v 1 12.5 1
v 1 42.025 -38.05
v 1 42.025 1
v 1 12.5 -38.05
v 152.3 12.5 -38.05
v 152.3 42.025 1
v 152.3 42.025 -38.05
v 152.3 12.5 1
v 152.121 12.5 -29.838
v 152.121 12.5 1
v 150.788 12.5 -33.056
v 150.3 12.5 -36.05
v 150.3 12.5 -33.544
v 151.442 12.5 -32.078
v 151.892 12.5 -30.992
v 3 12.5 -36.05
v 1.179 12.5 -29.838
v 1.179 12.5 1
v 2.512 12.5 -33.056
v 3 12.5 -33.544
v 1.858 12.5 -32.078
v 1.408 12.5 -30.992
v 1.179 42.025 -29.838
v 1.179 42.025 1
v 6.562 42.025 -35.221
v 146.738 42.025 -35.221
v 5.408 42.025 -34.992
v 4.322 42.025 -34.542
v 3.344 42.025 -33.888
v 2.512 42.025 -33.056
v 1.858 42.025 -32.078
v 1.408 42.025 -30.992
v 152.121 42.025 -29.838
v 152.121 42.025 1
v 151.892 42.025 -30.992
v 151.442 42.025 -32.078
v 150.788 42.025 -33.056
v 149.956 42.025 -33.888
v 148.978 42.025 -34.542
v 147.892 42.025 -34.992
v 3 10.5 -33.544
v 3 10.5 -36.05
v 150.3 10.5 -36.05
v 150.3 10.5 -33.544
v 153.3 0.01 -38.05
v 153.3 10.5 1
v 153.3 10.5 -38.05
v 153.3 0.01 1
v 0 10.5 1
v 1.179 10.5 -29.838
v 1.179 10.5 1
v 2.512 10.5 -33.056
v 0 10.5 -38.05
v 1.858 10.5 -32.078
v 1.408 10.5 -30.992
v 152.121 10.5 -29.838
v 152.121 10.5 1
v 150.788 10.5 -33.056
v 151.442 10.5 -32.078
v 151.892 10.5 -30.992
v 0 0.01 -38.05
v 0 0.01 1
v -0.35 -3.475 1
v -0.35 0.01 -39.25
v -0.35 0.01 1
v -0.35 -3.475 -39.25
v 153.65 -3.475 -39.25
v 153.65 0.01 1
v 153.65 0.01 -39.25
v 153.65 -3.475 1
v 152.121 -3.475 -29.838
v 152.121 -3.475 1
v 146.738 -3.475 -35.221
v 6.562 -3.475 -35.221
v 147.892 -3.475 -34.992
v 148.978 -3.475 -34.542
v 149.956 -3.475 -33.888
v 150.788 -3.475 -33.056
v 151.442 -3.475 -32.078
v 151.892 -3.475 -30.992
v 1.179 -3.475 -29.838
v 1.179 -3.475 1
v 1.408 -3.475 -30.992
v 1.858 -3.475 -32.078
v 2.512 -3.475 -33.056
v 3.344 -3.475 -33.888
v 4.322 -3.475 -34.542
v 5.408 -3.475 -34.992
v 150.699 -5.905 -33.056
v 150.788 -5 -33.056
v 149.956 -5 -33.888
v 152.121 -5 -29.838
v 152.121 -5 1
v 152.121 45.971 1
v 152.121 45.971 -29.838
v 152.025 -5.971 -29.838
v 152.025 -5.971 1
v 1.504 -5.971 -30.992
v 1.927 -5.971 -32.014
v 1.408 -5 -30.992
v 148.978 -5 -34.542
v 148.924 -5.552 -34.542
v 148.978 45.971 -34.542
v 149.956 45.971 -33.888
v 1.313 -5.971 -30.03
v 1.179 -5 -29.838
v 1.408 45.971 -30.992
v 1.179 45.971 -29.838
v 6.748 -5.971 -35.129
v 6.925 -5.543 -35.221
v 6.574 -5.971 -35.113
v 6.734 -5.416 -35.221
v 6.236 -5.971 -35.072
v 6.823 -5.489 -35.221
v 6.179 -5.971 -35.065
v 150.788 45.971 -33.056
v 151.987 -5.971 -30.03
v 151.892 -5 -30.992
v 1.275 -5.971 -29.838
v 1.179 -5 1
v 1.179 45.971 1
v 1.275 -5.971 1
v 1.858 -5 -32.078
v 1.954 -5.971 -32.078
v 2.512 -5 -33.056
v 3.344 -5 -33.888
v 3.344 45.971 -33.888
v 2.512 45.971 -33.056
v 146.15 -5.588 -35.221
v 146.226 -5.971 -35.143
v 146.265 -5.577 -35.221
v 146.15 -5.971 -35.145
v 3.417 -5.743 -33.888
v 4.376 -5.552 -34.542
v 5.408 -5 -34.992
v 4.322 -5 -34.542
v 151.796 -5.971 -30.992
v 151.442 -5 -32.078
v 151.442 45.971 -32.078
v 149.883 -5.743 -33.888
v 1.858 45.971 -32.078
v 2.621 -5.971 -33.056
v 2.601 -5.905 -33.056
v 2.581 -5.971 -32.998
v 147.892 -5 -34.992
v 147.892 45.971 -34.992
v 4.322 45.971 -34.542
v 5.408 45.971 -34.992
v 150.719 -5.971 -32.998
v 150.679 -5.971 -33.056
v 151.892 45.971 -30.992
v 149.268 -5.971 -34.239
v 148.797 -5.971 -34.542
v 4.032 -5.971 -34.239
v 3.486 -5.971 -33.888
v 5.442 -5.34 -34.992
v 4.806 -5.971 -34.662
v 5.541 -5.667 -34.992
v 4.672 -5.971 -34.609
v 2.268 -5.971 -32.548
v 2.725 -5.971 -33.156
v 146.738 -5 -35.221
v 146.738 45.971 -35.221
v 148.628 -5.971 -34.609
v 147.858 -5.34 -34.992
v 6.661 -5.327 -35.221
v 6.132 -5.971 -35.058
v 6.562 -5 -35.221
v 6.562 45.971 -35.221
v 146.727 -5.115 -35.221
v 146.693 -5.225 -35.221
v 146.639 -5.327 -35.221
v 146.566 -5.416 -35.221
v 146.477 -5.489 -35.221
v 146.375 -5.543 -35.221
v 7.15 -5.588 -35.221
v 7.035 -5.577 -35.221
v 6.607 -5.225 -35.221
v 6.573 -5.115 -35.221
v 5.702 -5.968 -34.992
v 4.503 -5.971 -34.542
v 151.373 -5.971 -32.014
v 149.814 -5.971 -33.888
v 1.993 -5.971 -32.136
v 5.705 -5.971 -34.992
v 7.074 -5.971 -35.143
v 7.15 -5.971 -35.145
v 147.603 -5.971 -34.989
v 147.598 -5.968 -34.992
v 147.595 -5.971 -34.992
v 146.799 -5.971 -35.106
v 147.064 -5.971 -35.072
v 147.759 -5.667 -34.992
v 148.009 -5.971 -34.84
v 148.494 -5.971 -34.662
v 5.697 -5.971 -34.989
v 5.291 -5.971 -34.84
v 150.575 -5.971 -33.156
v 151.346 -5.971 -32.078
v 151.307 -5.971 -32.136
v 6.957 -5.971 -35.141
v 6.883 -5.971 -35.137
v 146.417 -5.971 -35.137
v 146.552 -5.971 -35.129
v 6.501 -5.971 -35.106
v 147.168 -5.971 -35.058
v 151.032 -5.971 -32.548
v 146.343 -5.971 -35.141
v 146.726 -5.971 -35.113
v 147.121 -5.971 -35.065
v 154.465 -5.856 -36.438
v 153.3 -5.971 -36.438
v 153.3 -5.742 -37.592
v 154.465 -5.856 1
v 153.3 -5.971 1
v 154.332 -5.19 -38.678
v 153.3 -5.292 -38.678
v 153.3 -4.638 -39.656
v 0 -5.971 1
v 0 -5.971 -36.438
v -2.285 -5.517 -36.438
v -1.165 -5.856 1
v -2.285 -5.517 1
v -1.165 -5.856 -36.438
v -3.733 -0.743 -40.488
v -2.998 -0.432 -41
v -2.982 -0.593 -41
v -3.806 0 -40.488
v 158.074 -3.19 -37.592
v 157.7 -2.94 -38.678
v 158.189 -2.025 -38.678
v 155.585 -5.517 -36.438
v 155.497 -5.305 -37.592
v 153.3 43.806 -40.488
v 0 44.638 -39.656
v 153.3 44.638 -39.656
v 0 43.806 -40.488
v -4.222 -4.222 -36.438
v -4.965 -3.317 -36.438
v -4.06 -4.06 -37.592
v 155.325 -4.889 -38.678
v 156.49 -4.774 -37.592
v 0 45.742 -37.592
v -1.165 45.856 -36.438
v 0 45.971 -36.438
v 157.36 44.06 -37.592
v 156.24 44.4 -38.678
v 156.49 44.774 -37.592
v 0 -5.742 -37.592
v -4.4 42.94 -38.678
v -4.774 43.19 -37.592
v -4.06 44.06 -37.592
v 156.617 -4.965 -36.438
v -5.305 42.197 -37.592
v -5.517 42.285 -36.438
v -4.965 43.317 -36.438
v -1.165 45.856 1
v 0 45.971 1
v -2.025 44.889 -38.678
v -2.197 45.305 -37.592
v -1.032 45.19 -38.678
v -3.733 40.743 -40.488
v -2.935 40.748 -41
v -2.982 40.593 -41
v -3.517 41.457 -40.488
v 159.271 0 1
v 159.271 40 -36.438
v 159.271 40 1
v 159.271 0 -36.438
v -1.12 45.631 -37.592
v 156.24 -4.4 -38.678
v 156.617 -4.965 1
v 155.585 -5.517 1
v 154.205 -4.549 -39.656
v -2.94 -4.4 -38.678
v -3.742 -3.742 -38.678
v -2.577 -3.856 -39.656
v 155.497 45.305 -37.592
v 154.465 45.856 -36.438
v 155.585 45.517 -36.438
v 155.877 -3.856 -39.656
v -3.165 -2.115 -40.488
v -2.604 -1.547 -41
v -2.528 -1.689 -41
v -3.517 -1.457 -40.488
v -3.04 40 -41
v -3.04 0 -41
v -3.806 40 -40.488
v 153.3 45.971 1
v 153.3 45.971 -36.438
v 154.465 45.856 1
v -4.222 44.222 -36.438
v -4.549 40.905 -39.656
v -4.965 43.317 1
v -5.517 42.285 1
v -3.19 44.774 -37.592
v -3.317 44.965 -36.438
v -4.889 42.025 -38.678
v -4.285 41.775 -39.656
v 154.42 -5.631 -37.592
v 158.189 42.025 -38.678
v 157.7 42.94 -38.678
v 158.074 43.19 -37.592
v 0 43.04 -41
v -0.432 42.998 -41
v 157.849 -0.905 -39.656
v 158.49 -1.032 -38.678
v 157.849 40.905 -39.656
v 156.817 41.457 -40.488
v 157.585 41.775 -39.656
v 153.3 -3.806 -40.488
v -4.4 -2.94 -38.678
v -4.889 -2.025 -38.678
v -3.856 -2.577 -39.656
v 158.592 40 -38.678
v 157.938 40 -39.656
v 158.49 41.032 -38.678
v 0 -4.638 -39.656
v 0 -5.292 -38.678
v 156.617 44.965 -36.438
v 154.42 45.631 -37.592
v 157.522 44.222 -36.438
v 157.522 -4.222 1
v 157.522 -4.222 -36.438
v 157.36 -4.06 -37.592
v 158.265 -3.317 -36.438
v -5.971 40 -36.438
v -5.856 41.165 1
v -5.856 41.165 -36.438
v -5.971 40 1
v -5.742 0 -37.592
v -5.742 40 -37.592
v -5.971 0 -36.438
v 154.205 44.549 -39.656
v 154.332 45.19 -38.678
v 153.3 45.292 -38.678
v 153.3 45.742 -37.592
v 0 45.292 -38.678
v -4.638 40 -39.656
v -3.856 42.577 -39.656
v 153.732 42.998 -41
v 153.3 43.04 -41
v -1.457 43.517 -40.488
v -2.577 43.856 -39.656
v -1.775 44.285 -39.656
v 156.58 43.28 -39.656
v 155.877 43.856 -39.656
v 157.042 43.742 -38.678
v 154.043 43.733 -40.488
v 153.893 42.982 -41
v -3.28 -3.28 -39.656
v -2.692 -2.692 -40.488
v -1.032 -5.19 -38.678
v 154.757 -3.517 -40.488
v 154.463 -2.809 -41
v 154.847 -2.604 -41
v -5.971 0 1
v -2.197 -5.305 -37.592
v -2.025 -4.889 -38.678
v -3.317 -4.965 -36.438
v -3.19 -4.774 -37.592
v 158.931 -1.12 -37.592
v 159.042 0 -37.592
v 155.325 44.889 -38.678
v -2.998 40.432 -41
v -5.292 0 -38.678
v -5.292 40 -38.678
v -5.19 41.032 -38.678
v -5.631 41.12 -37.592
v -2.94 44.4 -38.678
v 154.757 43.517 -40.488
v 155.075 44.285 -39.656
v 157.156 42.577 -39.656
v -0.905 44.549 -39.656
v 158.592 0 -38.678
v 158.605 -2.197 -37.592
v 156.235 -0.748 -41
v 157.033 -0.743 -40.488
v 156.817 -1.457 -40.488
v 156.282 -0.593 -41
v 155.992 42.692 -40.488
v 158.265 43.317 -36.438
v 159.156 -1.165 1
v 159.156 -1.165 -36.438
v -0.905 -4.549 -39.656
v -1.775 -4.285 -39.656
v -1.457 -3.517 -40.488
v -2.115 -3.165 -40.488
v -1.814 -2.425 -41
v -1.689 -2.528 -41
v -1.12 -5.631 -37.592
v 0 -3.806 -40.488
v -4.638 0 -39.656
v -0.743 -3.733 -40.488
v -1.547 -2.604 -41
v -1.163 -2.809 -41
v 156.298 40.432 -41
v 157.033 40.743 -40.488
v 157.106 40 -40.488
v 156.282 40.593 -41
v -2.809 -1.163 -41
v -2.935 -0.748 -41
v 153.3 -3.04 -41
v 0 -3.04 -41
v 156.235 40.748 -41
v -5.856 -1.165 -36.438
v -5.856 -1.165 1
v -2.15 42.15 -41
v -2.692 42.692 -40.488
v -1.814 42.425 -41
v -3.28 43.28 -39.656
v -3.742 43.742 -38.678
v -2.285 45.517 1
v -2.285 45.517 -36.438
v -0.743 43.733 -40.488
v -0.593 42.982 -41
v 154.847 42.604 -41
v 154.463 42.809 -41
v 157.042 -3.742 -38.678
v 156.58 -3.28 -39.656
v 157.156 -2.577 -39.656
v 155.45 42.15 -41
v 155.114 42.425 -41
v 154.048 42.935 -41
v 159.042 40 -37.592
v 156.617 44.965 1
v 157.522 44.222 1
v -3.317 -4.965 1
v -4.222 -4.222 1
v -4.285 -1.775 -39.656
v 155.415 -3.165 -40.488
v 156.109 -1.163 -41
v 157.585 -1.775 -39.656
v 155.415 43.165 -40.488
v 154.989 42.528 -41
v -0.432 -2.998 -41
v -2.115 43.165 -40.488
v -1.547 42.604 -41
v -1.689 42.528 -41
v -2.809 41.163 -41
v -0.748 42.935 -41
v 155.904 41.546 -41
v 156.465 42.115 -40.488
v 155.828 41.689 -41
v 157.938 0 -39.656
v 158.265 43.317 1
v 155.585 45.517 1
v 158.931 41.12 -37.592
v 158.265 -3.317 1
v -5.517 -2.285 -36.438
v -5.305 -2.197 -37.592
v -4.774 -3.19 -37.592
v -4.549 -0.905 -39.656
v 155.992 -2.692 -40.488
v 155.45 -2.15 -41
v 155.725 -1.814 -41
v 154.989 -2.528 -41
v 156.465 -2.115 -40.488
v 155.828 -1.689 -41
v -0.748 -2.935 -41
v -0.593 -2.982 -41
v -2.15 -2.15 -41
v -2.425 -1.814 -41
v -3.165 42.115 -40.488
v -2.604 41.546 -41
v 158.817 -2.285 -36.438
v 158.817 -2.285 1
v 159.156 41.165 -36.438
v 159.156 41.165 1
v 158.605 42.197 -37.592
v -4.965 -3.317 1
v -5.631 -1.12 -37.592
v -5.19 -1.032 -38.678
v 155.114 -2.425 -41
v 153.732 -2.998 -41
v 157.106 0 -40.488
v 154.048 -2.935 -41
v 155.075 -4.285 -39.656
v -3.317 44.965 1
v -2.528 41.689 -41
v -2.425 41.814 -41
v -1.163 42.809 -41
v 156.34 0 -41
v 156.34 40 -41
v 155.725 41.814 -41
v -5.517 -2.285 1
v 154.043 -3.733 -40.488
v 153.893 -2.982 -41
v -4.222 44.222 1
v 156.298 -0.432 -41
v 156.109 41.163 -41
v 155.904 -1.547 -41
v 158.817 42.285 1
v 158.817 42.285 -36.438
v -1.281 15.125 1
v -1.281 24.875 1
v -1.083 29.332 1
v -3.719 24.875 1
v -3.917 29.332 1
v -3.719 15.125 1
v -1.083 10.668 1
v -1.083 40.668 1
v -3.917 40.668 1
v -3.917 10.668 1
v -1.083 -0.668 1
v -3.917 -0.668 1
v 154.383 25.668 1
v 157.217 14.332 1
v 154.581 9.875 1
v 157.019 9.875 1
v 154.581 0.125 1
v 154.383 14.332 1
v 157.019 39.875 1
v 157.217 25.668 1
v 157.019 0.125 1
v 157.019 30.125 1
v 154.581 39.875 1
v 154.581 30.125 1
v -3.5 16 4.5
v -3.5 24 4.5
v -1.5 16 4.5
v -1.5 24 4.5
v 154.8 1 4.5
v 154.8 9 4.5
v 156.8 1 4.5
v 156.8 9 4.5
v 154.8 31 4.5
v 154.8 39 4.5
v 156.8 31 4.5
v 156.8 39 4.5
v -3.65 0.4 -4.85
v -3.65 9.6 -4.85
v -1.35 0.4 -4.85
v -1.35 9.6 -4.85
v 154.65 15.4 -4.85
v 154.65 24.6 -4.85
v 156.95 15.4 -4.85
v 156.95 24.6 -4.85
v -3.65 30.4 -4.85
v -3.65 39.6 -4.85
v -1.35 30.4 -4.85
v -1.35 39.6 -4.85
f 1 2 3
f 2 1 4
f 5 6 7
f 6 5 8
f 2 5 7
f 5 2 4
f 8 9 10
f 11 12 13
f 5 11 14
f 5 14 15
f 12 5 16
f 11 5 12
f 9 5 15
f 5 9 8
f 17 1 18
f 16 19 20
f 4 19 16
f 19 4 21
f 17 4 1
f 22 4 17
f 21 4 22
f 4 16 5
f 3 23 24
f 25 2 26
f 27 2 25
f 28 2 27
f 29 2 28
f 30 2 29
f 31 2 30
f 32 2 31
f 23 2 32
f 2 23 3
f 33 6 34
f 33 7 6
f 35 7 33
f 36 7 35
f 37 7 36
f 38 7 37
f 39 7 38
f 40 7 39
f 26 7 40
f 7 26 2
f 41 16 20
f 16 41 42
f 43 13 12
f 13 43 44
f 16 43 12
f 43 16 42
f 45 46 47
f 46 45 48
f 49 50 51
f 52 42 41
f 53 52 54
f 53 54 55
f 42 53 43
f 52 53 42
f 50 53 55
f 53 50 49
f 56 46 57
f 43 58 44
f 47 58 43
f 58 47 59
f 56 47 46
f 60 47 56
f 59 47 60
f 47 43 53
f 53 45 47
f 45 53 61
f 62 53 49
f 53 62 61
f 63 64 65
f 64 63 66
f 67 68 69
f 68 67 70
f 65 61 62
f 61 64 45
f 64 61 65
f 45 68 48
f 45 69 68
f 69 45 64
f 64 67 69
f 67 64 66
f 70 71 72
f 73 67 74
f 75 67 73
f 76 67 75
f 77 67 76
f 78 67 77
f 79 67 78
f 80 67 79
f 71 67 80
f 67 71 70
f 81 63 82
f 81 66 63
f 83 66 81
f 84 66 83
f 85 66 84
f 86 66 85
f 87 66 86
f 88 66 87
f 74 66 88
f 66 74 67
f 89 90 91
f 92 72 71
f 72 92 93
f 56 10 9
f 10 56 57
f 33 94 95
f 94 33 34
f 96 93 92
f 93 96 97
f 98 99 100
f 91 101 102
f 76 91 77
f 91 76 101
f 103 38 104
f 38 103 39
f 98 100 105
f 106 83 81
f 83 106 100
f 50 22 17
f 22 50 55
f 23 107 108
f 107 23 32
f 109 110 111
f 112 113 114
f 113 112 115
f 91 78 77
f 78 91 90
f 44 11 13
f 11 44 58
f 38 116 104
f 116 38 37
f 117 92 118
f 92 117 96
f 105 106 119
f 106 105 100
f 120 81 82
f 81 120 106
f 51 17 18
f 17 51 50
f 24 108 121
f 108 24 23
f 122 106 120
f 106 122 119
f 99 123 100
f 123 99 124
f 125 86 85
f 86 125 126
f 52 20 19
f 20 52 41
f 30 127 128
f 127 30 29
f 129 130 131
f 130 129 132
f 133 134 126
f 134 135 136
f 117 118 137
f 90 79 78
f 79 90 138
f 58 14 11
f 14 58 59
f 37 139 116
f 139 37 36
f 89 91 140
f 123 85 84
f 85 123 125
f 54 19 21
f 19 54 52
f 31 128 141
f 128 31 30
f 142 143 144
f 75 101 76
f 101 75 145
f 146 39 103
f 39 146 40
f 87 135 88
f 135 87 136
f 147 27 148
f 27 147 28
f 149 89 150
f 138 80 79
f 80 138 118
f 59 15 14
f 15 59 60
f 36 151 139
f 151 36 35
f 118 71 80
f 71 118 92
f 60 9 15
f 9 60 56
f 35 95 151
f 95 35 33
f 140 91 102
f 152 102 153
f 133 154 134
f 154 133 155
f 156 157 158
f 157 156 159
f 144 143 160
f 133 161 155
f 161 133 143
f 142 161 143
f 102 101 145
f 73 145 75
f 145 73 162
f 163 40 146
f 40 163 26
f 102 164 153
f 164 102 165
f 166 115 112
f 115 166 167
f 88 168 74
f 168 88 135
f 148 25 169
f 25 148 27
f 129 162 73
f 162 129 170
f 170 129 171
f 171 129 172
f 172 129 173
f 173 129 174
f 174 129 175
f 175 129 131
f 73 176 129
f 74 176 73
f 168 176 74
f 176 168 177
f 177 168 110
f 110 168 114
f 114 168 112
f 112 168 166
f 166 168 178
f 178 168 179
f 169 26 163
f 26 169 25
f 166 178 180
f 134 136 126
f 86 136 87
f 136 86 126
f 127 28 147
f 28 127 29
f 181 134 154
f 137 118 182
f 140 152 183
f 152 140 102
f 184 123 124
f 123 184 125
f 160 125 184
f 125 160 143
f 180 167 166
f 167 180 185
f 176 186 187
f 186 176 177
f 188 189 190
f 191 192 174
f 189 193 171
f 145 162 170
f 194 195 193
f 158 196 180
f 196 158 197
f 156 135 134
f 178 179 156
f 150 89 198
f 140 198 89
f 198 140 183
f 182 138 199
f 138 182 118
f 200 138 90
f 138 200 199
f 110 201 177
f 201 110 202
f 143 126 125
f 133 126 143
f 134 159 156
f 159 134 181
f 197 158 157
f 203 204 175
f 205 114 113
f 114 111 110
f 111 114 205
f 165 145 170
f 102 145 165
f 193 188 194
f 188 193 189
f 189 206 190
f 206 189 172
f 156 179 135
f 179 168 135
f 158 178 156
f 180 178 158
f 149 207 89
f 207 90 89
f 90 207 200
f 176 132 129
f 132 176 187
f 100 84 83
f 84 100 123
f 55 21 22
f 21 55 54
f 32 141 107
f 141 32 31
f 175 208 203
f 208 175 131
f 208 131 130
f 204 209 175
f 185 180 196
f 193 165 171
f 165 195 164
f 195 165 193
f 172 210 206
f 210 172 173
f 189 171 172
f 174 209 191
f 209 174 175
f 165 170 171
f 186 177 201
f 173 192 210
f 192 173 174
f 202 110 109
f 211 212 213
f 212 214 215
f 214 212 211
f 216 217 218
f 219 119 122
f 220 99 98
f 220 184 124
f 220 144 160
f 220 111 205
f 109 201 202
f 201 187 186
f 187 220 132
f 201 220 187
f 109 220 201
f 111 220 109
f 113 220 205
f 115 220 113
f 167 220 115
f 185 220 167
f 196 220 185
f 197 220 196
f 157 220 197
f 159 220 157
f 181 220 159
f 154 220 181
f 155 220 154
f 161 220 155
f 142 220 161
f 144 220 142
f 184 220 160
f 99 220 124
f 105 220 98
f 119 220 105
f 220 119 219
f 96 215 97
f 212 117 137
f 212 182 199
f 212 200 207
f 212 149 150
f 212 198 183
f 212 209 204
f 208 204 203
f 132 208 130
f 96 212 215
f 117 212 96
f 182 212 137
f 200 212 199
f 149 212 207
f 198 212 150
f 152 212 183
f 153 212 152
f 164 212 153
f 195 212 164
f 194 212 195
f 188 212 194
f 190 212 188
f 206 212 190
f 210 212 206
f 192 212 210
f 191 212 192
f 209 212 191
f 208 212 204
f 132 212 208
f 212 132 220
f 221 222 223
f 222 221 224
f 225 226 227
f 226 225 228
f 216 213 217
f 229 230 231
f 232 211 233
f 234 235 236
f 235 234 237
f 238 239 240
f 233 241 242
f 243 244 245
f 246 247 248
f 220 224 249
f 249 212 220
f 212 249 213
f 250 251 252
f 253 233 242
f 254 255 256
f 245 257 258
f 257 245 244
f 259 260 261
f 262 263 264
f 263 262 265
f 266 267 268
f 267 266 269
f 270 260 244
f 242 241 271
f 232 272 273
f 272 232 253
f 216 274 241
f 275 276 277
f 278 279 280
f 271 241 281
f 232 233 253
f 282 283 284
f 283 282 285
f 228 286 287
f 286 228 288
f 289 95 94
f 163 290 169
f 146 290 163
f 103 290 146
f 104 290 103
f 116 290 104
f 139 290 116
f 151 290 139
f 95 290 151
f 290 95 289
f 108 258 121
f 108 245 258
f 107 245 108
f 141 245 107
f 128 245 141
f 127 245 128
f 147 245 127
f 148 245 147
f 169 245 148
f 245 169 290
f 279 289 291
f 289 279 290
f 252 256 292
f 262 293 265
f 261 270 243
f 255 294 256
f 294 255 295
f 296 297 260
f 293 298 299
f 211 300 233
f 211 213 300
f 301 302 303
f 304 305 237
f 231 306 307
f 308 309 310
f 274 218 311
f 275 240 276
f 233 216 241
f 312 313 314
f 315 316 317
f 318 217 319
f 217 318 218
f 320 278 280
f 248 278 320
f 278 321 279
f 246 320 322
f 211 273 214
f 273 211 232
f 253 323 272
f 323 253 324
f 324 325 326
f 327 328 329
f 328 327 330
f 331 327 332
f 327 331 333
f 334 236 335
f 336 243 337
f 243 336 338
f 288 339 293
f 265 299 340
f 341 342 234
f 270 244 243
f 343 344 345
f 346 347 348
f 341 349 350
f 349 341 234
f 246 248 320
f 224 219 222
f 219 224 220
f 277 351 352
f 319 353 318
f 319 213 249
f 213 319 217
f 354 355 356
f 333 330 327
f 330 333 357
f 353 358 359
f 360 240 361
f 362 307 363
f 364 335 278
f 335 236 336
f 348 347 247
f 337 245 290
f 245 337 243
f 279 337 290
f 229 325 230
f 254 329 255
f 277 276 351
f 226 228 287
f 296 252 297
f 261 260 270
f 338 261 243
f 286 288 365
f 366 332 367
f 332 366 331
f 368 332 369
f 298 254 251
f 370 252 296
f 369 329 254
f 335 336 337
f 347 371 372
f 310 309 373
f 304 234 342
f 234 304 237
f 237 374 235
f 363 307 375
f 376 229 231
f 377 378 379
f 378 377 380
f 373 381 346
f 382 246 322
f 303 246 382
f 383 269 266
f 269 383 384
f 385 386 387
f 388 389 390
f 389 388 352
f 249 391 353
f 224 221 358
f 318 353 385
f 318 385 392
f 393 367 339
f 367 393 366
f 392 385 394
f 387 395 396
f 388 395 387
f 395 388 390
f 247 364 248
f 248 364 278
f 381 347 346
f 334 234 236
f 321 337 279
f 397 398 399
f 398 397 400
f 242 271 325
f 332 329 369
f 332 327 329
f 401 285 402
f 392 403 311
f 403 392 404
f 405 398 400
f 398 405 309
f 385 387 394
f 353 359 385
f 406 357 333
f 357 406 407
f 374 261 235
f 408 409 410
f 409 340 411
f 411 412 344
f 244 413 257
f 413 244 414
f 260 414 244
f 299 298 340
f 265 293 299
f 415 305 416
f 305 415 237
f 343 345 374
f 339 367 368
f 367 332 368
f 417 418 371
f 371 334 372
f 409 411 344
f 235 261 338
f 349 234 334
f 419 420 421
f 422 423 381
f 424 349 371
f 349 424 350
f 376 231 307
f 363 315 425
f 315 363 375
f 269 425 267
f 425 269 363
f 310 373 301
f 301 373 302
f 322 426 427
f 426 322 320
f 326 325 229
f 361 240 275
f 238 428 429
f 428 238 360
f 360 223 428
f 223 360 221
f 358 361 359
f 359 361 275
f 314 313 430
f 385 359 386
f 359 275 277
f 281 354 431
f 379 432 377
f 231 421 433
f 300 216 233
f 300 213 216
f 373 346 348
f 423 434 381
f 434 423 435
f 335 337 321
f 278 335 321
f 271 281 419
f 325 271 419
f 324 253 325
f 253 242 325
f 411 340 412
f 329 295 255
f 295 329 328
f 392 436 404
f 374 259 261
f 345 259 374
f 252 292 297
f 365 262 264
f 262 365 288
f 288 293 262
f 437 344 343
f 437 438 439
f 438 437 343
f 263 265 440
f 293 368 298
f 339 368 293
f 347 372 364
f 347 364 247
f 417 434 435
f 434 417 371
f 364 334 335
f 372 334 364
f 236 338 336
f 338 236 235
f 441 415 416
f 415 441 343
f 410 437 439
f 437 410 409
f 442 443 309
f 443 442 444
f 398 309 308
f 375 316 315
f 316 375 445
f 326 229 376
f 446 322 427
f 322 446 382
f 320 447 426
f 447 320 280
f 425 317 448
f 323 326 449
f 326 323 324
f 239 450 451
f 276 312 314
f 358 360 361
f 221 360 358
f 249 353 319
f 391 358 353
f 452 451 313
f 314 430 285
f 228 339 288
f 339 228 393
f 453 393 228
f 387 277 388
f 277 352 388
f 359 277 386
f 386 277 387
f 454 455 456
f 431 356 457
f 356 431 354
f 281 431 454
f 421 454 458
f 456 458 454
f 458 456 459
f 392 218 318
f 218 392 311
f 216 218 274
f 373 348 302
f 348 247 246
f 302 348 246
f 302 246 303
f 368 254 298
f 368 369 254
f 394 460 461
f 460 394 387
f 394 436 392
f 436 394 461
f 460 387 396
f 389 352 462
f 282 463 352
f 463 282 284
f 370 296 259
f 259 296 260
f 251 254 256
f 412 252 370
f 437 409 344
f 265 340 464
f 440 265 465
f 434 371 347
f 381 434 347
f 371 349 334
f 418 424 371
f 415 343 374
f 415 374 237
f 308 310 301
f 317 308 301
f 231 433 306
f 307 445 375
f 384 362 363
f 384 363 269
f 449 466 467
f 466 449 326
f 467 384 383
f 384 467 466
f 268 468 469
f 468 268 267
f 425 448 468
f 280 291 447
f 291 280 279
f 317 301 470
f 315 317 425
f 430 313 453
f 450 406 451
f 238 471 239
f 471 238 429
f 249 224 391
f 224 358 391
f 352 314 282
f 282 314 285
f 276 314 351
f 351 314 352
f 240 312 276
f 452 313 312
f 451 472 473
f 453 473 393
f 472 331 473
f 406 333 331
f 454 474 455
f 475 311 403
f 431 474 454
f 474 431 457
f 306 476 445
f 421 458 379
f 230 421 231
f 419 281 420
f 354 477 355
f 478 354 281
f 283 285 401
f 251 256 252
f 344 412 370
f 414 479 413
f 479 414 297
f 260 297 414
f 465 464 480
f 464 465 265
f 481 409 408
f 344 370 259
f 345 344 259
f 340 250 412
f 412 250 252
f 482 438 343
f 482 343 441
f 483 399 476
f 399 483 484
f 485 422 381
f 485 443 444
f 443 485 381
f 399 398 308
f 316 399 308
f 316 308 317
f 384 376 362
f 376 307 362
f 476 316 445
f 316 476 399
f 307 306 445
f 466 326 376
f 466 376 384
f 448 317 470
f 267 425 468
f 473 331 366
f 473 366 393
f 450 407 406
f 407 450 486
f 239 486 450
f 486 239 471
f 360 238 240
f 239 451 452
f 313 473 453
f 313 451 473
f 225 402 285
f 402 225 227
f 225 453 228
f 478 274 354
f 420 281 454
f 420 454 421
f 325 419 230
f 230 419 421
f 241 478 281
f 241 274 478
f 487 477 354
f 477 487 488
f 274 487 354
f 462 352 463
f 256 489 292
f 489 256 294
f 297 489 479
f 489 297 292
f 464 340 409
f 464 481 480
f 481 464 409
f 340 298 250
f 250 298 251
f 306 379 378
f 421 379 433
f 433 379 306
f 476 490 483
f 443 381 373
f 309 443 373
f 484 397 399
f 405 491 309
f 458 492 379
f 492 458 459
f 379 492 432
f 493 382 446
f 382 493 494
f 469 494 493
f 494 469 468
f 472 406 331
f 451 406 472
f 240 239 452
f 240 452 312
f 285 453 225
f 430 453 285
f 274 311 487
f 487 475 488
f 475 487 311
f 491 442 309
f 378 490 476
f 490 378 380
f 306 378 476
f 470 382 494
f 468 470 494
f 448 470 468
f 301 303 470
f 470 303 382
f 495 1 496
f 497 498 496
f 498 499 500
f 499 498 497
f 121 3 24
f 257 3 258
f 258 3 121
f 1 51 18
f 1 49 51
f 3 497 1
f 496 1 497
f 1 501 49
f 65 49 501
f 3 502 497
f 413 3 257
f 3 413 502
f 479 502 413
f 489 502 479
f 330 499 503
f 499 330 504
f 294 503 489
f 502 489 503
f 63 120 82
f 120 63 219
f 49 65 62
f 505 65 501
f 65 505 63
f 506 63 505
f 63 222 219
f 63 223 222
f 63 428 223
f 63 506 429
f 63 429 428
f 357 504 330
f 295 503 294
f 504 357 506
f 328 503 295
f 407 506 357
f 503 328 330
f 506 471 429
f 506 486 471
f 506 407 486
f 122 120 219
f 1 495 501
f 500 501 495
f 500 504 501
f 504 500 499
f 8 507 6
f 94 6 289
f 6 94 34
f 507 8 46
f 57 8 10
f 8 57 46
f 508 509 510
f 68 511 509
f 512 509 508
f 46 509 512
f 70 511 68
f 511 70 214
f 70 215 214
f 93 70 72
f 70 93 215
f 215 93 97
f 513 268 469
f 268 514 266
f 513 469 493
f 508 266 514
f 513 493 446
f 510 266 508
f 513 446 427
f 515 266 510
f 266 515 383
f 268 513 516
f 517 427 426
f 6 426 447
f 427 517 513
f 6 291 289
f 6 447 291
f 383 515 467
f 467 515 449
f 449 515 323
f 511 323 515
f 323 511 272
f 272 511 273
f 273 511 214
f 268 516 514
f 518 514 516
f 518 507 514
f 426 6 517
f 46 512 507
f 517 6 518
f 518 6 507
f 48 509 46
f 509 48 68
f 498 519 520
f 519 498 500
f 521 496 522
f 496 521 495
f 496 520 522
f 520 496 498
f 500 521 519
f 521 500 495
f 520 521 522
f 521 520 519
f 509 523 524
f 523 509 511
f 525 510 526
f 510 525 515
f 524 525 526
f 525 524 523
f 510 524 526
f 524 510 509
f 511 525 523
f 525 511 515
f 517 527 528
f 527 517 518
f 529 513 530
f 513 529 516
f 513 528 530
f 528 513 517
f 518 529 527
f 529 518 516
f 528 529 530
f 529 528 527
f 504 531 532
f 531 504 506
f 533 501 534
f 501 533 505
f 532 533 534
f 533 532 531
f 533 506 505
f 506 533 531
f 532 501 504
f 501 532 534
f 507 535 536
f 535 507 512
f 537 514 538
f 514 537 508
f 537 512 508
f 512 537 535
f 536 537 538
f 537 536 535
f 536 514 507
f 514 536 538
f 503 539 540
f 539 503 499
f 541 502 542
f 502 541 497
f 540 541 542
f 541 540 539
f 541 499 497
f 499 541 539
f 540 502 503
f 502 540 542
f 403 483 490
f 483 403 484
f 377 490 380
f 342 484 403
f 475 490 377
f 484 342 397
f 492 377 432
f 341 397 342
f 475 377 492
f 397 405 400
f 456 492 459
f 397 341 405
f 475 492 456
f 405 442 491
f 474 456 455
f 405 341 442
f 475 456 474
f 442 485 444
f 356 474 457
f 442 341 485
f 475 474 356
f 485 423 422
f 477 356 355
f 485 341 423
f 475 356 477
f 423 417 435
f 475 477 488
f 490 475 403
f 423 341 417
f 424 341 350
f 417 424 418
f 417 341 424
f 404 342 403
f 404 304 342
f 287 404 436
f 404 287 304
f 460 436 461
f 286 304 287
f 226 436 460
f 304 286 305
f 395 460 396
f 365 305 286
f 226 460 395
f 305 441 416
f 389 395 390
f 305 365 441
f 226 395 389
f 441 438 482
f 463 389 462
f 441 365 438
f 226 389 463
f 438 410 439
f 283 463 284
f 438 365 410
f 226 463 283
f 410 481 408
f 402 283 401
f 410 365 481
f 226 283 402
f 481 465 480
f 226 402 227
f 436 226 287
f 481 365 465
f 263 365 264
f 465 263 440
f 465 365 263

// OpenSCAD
// file: miniclock-ref.scad
$fn = 10;

skinBreak = 0.01;       // extra depth to poke a hole through a surface

boardW = 146;
boardH = 63.7;     // was 63.45 - tight
boardD = 1.8 + skinBreak;

boardX = 0;
boardY = 4;

boardFrameW = 3;
boardFrameX = 0;
boardFrameY = -2;

reflectorWidth = boardW;
reflectorHeight = boardH + boardFrameW*2;
reflectorDepth = 10;
refOffZ = reflectorDepth / 2;

strokeWidth = 0.3;



segMul = 1.27;

adgOffX = 8;
adgOffY = 3;
aOffX = 4;
aOffY = 34;
dOffY = 0;
gOffY = 17;
adgSeg = [ [-8,-1], [-8,1], [-5,4], [5,4], [8,1], [8,-1], [5,-4], [-5,-4] ];

bcOffX = 21;
bcOffY = 8.5;
bOffY = 20;
cOffY = 3;
bcSeg = [ [-4,-4.5], [-4,4.5], [-1,7.5], [-1,8.5], [1.5,8.5], [3.5,6.5], [3.5,-6.5], [1.5,-8.5], [-1,-8.5], [-1,-7.5] ];

efOffX = 3;
efOffY = 8.5;
eOffY = 3;
fOffY = 20;
efSeg = [ [1,-8.5], [-1.5,-8.5], [-3.5,-6.5],  [-3.5,6.5],  [-1.5,8.5],  [1,8.5],  [1,7.5],  [4,4.5],  [4,-4.5],  [1,-7.5] ];

colonCenterX = 3;
colonCenterY = 3;
colonSeg = [ [-3.5,-2.5], [-3.5,2.5],  [-2.5,3.5],  [2.5,3.5],  [3.5,2.5],  [3.5,-2.5],  [2.5,-3.5],  [-2.5,-3.5] ];

module segment(path) {
    scale([.97, .98, 1])
    linear_extrude(height = reflectorDepth+1, center=true, scale=.85)
        polygon(path);
}

module sevenSeg() {
    
    translate([adgOffX + aOffX, adgOffY + aOffY, 0])
        segment(adgSeg);
    translate([adgOffX + aOffX, adgOffY + dOffY, 0])
        segment(adgSeg);
    translate([adgOffX + aOffX, adgOffY + gOffY, 0])
        segment(adgSeg);

    translate([bcOffX, bcOffY + bOffY, 0])
        segment(bcSeg);
    translate([bcOffX, bcOffY + cOffY, 0])
        segment(bcSeg);
    translate([efOffX, efOffY + eOffY, 0])
        segment(efSeg);
    translate([efOffX, efOffY + fOffY, 0])
        segment(efSeg);
}

module colons() {
    translate([colonCenterX, colonCenterY + 10, 0])
        segment(colonSeg);
    translate([colonCenterX, colonCenterY + 24, 0])
        segment(colonSeg);
}

module board(depth = boardD) {
    cube([boardW, boardH, depth]);
}

headerHeight = 6.5;
headerYOffset = 1;
headerAOffset = 7;
headerAWidth = 53;
headerBOffset = 77;
headerBWidth = 28.5;
headerDepth = 10;
headerBackDepth = 4;

module pinClearance() {
    // expansion header
        translate([headerAOffset, boardH-headerHeight, -boardD])
            cube([headerAWidth, headerHeight, headerDepth]);
    // prog header
        translate([headerBOffset, boardH-headerHeight, -boardD])
            cube([headerBWidth, headerHeight, headerDepth]);

switchAOffset = -1;
switchBOffset = 138;
switchYOffset = 5.7;
switchWidth = 8;
switchHeight = 10;
switchPinDepth = boardD + headerBackDepth;
    // reset and boot switches
        translate([switchAOffset, boardH-switchHeight-switchYOffset, switchPinDepth-boardD - headerBackDepth])
            cube([switchWidth, switchHeight, switchPinDepth]);
        translate([switchBOffset, boardH-switchHeight-switchYOffset, switchPinDepth-boardD - headerBackDepth])
            cube([switchWidth, switchHeight, switchPinDepth]);

powerW = 12;
powerH = 13;
powerD = 7;
powerX = 107;
powerY = 0;
powerZ = -2;
    // power jack pins
    translate([powerX, boardH-powerH+powerY, powerZ])
        cube([powerW, powerH, powerD]);

npW = 11;
npH = 4;
npD = 5;
npX = 125;
npY = -1;
npZ = -1;
    // neopixel out pins
    translate([npX, boardH-npH+npY, npZ])
        cube([npW, npH, npD]);

holeX1 = 2.54;
holeX2 = boardW - 2.54;
holeY1 = 2.54;
holeY2 = boardH - 2.54;
holeZ = 0;
holeR = 3/2;
holeD = 10;
    // mounting holes
    translate([holeX1, holeY1, holeZ])
        cylinder(r=holeR, h=holeD, center=true);
    translate([holeX1, holeY2, holeZ])
        cylinder(r=holeR, h=holeD, center=true);
    translate([holeX2, holeY1, holeZ])
        cylinder(r=holeR, h=holeD, center=true);
    translate([holeX2, holeY2, holeZ])
        cylinder(r=holeR, h=holeD, center=true);

}


module miniclock_reflector() {
difference() {
    // base to carve everything out of
    translate([boardFrameX-boardFrameW, boardFrameY-boardFrameW, -reflectorDepth])
        cube([boardW+boardFrameW*2, reflectorHeight+boardFrameW*2, reflectorDepth]);

    translate([boardFrameX + boardW, boardFrameY + boardH + boardFrameW, 0])
        rotate([0, 0, 180])
    union() {
        // pcb
        translate([boardX, boardY, -boardD+skinBreak])
            cube([boardW, boardH, boardD]);
        
        // header pins
        translate([boardX, boardY, -headerBackDepth])
            pinClearance();

        // seven segments (* 4) + colon
        translate([boardX - 1, boardY + 2, 0]) {
            scale([segMul, segMul, 1])
                union() {
        
                translate([1, 0, -refOffZ]) {
                    translate([1, 0, 0])
                        sevenSeg();
                    translate([28, 0, 0])
                        sevenSeg();
                    
                    translate([54, 0, 0])
                        colons();
                    
                    translate([62, 0, 0])
                        sevenSeg();
                    translate([89, 0, 0])
                        sevenSeg();
                }
            }
        }
    }
}
}

if (!LIBRARY)
    miniclock_reflector();
// main file
$fn=32;
LIBRARY = 1;

use <miniclock-ref.scad>;

split_it = 0;                   // half sized deep

doCardHolder = 0;
    withCutout = 0;
doSwitches = 0;
doLED = 0;

acrylicDepth = 3.175 + .3;

skinBreak = 0.01;       // extra depth to poke a hole through a surface

boardFrameW = 3;
boardFrameX = 0;
boardFrameY = -2;

// from miniclock-ref - begin
boardW = 146;
boardH = 63.7;     // was 63.45 - tight
boardD = 1.8 + skinBreak;

reflectorWidth = 152.8; // boardW;
reflectorHeight = 73.6; // boardH + boardFrameW*2;
reflectorDepth = 10;
// from miniclock-ref - end

echo("Reflector[", reflectorWidth, reflectorHeight, reflectorDepth, "]");

fudge = 0.5;
reflectorW = reflectorWidth + fudge;
reflectorH = reflectorHeight + fudge;
reflectorD = reflectorDepth + fudge;

caseMinkowskiR = 6;
caseW = reflectorW;
caseH = 40;                 // really depth
caseD = reflectorH+caseMinkowskiR-2;
caseX = 0;
caseY = 0;
caseZ = -boardH/2 - caseMinkowskiR;

caseBackLip = 3;

//glassW = 148.26 + fudge;
//glassH = 65.8 + fudge;
glassW = 153.5 + fudge;
glassH = 76 + fudge;
glassD = acrylicDepth;
glassX = (reflectorW - glassW) / 2;
glassY = 0;
glassZ = -glassH/2-1;

glassLipDepth = 2;
glassLipSide = caseMinkowskiR + 1.5;
glassLipBottom = caseMinkowskiR + 3;

topBottomSplit = 0;

reflectorX = 0;
reflectorY = 0;
reflectorZ = reflectorH/2-1;

voidW = reflectorW;
voidH = reflectorH;
voidD = caseH - glassD - glassLipDepth -2 -caseBackLip;
voidAX = 0;
voidAY = reflectorD + 2;
voidAZ = -reflectorH/2-1;

module reflector() {
   translate([reflectorX, reflectorY, reflectorZ])
        rotate([-90, 0, 0])
            cube([reflectorW, reflectorH, reflectorD]);
}

module glass() {
    translate([glassX, glassY-glassD, glassZ])
        cube([glassW, glassD+skinBreak, glassH]);
}

module internalVoid() {
    // main volume
    translate([voidAX+1, voidAY, voidAZ])
        cube([voidW-2, voidD, voidH]);
    //additional around board retaining lip
    translate([voidAX+3, voidAY-6, voidAZ+2])
        cube([voidW-6, voidD-2, voidH-4]);
}

//    translate([7, -10, -topBottomSplit-(boardH/2)+9])

viewPortX = (reflectorW - glassW)/2;
viewPortY = -5;
viewPortZ = -glassH/2;
smallenW = glassLipSide * 2;
smallenH = glassLipBottom * 2;

module frontView() {
    translate([viewPortX+smallenW/2, viewPortY, viewPortZ+smallenH/2])
        minkowski() {
            cube([glassW-smallenW, glassH, glassH-smallenH]);
            sphere(r=caseMinkowskiR);
        }
}

rx = 0;
rz = -2;
module caseCore() {
    translate([caseX-rx, caseY, caseZ-rz])
    minkowski() {
        cube([caseW, caseH, caseD]);
            sphere(r=caseMinkowskiR);
    }
}


connW = 2.5;
connW2 = connW/2;
connH = 10;
connH2 = connH/2;

connPoly = [ [-connW2,-connH2], [connW2,-connH2], [connW2,connH2], [-connW2,connH2] ];

tabW = 2.5;
tabD = 4;

tabZout = 1.5;
tabZin = -2.7;

tabAX = -connW;
tabAY = 5;
tabBX = reflectorW+connW;
tabBY = 20;
tabCX = reflectorW+connW;
tabCY = 35;
tabBZ = tabZout;

tabNegDepthAdd = .5;
tabNegScale = [ 1.15, 1.15, 1.4 ];

module connectorPositive() {
    translate([tabAX, tabBY, tabBZ])
        rotate([0, 0, 0])
        linear_extrude(height = tabD, center=true, scale=.8)
            polygon(connPoly);
    translate([tabBX, tabAY, tabBZ])
        rotate([0, 0, 0])
        linear_extrude(height = tabD, center=true, scale=.8)
            polygon(connPoly);
    translate([tabCX, tabCY, tabBZ])
        rotate([0, 0, 0])
        linear_extrude(height = tabD, center=true, scale=.8)
            polygon(connPoly);
}

module connectorNegative() {
    color("blue") {
    translate([tabAX, tabAY, tabZin])
        rotate([180, 0, 0])
            scale(tabNegScale)
            linear_extrude(height = tabD+tabNegDepthAdd, center=true, scale=.8)
                polygon(connPoly);
    translate([tabBX, tabBY, tabZin])
        rotate([180, 0, 0])
            scale(tabNegScale)
            linear_extrude(height = tabD+tabNegDepthAdd, center=true, scale=.8)
                polygon(connPoly);
    translate([tabAX, tabCY, tabZin])
        rotate([180, 0, 0])
            scale(tabNegScale)
            linear_extrude(height = tabD+tabNegDepthAdd, center=true, scale=.8)
                polygon(connPoly);
    }
}

cardW = 106; // 92;
cardH = 51;
cardD = 10;

cardX = (reflectorW -cardW)/2+2;
cardY = 51;
cardZ = -70;

cardWall = 1.7;

cardR = [ 90+7.5, 0, 0 ];

cardTopL = [cardX-cardWall*2, 27.1, -21.5];
cardTopD = [ cardW+cardWall*2, 13.8, 3 ];

module cardHolderPositive() {
    translate([cardX-cardWall*2, cardY-cardWall*2, cardZ-cardWall*2])
        rotate(cardR)
           cube([cardW+cardWall*2, cardH+cardWall*2, cardD+cardWall*2]);
}

cardCutoutL = [cardX+13-2, -10, -27];
cardCutoutD = [cardW-26, cardH, cardD];
cardCutoutR = [ 90, 0, 0 ];
module cardHolderNegative() {
    translate([cardX-cardWall, cardY-cardWall*3, cardZ-cardWall])
        rotate(cardR)
           cube([cardW, cardH+5, cardD]);
    if (withCutout)
    translate(cardCutoutL)
        minkowski() {
            cube(cardCutoutD);
            sphere(r=caseMinkowskiR);
        }
}

module ledMountSm() {
    ledSlop = 0.4;
    ledMountR = (7 + ledSlop) / 2;
    ledMountD = 6.75;
    ledMountBaseR = 7.9 / 2;
    ledMountBaseH = 0.9;
    
    rotate([0, 180, 0])
        union() {
            cylinder(r = ledMountBaseR, h = ledMountBaseH);
            translate([0, 0, -ledMountD]) 
                cylinder(r = ledMountR, h = ledMountD);
        }
}



module oneSide() {
    // remove negative tab bits
    difference() {
        // from a halved
        union() {
            // with added positive tab bits
            difference() {
                // voided internal bits
                difference() {
                    // full core
                    union() {
//                    color("blue", 0.2);
                        difference() {
                            caseCore();
                        }
                    }
                    // (internal bits to void)
                    union() {
                        reflector();
                        glass();
                        internalVoid();
                        frontView();
                    }
                }
    
            
                // cut in half
                translate([-20, -50, 1])
                    cube([200, 200, 200]);
            }
            
            // tabs positive
            translate([0, 0, 1])
                connectorPositive();
 
            if (doCardHolder)
                cardHolderPositive();
       }
        // tabs negative
        translate([0, 0, 1])
            connectorNegative();
        
       // switch holes
       swOffset1 = 7.5;
       swOffset2 = 19;
       swOffsetY1 = 35;
       swOffsetY2 = 22;
       swOffsetY3 = 22;
      if (doSwitches) {
            translate([reflectorW-swOffset1, swOffsetY1, -42])
#              ledMountSm();
            translate([swOffset1, swOffsetY1, -42])
#              ledMountSm();
#          translate([reflectorW-swOffset2, swOffsetY2, -42])
               ledMountSm();
#          translate([swOffset2, swOffsetY2, -42])
               ledMountSm();
        }
        
        // hole for IR receiver
       if (doLED) {
            translate([reflectorW/2, swOffsetY3, -42])
#              ledMountSm();
        }
        
        // card holder
        if (doCardHolder)
            cardHolderNegative();
        
                // clean bottom
                translate([-20, -50, -141])
                    cube([200, 200, 100]);
    }
    
    // flat cardholder bottom
    if (doCardHolder) {
        difference() {
            translate(cardTopL)
                cube(cardTopD);
           if (withCutout)
            translate(cardCutoutL)
                minkowski() {
                    cube(cardCutoutD);
                    sphere(r=caseMinkowskiR);
                }
        }
    }
}

// 
splitItL = [ -150, 20, -50 ];


module doIt() {
    if (split_it) {
        difference() {
            translate([0, 0, 0])
                oneSide();
            translate(splitItL)
                cube([500, 500, 500]);
        }
    }
    else {
        oneSide();
    }
}

testCardHolder = 0;
testConnectors = 0;

if (testCardHolder) {
    intersection([10, 10, 10]) {
        translate([23, 20, -50])
            cube([100,200,100]);
        doIt();
    }
}
else if (testConnectors) {
    translate([140, 0, 0])
    intersection([10, 10, 10]) {
        translate([-127, -20, -5])
            cube([200,200,100]);
        doIt();
    }
    translate([0, 0, 0])
    intersection([10, 10, 10]) {
        translate([127, -20, -5])
            #cube([200,200,100]);
        doIt();
    }
}
else {
    doIt();
}
